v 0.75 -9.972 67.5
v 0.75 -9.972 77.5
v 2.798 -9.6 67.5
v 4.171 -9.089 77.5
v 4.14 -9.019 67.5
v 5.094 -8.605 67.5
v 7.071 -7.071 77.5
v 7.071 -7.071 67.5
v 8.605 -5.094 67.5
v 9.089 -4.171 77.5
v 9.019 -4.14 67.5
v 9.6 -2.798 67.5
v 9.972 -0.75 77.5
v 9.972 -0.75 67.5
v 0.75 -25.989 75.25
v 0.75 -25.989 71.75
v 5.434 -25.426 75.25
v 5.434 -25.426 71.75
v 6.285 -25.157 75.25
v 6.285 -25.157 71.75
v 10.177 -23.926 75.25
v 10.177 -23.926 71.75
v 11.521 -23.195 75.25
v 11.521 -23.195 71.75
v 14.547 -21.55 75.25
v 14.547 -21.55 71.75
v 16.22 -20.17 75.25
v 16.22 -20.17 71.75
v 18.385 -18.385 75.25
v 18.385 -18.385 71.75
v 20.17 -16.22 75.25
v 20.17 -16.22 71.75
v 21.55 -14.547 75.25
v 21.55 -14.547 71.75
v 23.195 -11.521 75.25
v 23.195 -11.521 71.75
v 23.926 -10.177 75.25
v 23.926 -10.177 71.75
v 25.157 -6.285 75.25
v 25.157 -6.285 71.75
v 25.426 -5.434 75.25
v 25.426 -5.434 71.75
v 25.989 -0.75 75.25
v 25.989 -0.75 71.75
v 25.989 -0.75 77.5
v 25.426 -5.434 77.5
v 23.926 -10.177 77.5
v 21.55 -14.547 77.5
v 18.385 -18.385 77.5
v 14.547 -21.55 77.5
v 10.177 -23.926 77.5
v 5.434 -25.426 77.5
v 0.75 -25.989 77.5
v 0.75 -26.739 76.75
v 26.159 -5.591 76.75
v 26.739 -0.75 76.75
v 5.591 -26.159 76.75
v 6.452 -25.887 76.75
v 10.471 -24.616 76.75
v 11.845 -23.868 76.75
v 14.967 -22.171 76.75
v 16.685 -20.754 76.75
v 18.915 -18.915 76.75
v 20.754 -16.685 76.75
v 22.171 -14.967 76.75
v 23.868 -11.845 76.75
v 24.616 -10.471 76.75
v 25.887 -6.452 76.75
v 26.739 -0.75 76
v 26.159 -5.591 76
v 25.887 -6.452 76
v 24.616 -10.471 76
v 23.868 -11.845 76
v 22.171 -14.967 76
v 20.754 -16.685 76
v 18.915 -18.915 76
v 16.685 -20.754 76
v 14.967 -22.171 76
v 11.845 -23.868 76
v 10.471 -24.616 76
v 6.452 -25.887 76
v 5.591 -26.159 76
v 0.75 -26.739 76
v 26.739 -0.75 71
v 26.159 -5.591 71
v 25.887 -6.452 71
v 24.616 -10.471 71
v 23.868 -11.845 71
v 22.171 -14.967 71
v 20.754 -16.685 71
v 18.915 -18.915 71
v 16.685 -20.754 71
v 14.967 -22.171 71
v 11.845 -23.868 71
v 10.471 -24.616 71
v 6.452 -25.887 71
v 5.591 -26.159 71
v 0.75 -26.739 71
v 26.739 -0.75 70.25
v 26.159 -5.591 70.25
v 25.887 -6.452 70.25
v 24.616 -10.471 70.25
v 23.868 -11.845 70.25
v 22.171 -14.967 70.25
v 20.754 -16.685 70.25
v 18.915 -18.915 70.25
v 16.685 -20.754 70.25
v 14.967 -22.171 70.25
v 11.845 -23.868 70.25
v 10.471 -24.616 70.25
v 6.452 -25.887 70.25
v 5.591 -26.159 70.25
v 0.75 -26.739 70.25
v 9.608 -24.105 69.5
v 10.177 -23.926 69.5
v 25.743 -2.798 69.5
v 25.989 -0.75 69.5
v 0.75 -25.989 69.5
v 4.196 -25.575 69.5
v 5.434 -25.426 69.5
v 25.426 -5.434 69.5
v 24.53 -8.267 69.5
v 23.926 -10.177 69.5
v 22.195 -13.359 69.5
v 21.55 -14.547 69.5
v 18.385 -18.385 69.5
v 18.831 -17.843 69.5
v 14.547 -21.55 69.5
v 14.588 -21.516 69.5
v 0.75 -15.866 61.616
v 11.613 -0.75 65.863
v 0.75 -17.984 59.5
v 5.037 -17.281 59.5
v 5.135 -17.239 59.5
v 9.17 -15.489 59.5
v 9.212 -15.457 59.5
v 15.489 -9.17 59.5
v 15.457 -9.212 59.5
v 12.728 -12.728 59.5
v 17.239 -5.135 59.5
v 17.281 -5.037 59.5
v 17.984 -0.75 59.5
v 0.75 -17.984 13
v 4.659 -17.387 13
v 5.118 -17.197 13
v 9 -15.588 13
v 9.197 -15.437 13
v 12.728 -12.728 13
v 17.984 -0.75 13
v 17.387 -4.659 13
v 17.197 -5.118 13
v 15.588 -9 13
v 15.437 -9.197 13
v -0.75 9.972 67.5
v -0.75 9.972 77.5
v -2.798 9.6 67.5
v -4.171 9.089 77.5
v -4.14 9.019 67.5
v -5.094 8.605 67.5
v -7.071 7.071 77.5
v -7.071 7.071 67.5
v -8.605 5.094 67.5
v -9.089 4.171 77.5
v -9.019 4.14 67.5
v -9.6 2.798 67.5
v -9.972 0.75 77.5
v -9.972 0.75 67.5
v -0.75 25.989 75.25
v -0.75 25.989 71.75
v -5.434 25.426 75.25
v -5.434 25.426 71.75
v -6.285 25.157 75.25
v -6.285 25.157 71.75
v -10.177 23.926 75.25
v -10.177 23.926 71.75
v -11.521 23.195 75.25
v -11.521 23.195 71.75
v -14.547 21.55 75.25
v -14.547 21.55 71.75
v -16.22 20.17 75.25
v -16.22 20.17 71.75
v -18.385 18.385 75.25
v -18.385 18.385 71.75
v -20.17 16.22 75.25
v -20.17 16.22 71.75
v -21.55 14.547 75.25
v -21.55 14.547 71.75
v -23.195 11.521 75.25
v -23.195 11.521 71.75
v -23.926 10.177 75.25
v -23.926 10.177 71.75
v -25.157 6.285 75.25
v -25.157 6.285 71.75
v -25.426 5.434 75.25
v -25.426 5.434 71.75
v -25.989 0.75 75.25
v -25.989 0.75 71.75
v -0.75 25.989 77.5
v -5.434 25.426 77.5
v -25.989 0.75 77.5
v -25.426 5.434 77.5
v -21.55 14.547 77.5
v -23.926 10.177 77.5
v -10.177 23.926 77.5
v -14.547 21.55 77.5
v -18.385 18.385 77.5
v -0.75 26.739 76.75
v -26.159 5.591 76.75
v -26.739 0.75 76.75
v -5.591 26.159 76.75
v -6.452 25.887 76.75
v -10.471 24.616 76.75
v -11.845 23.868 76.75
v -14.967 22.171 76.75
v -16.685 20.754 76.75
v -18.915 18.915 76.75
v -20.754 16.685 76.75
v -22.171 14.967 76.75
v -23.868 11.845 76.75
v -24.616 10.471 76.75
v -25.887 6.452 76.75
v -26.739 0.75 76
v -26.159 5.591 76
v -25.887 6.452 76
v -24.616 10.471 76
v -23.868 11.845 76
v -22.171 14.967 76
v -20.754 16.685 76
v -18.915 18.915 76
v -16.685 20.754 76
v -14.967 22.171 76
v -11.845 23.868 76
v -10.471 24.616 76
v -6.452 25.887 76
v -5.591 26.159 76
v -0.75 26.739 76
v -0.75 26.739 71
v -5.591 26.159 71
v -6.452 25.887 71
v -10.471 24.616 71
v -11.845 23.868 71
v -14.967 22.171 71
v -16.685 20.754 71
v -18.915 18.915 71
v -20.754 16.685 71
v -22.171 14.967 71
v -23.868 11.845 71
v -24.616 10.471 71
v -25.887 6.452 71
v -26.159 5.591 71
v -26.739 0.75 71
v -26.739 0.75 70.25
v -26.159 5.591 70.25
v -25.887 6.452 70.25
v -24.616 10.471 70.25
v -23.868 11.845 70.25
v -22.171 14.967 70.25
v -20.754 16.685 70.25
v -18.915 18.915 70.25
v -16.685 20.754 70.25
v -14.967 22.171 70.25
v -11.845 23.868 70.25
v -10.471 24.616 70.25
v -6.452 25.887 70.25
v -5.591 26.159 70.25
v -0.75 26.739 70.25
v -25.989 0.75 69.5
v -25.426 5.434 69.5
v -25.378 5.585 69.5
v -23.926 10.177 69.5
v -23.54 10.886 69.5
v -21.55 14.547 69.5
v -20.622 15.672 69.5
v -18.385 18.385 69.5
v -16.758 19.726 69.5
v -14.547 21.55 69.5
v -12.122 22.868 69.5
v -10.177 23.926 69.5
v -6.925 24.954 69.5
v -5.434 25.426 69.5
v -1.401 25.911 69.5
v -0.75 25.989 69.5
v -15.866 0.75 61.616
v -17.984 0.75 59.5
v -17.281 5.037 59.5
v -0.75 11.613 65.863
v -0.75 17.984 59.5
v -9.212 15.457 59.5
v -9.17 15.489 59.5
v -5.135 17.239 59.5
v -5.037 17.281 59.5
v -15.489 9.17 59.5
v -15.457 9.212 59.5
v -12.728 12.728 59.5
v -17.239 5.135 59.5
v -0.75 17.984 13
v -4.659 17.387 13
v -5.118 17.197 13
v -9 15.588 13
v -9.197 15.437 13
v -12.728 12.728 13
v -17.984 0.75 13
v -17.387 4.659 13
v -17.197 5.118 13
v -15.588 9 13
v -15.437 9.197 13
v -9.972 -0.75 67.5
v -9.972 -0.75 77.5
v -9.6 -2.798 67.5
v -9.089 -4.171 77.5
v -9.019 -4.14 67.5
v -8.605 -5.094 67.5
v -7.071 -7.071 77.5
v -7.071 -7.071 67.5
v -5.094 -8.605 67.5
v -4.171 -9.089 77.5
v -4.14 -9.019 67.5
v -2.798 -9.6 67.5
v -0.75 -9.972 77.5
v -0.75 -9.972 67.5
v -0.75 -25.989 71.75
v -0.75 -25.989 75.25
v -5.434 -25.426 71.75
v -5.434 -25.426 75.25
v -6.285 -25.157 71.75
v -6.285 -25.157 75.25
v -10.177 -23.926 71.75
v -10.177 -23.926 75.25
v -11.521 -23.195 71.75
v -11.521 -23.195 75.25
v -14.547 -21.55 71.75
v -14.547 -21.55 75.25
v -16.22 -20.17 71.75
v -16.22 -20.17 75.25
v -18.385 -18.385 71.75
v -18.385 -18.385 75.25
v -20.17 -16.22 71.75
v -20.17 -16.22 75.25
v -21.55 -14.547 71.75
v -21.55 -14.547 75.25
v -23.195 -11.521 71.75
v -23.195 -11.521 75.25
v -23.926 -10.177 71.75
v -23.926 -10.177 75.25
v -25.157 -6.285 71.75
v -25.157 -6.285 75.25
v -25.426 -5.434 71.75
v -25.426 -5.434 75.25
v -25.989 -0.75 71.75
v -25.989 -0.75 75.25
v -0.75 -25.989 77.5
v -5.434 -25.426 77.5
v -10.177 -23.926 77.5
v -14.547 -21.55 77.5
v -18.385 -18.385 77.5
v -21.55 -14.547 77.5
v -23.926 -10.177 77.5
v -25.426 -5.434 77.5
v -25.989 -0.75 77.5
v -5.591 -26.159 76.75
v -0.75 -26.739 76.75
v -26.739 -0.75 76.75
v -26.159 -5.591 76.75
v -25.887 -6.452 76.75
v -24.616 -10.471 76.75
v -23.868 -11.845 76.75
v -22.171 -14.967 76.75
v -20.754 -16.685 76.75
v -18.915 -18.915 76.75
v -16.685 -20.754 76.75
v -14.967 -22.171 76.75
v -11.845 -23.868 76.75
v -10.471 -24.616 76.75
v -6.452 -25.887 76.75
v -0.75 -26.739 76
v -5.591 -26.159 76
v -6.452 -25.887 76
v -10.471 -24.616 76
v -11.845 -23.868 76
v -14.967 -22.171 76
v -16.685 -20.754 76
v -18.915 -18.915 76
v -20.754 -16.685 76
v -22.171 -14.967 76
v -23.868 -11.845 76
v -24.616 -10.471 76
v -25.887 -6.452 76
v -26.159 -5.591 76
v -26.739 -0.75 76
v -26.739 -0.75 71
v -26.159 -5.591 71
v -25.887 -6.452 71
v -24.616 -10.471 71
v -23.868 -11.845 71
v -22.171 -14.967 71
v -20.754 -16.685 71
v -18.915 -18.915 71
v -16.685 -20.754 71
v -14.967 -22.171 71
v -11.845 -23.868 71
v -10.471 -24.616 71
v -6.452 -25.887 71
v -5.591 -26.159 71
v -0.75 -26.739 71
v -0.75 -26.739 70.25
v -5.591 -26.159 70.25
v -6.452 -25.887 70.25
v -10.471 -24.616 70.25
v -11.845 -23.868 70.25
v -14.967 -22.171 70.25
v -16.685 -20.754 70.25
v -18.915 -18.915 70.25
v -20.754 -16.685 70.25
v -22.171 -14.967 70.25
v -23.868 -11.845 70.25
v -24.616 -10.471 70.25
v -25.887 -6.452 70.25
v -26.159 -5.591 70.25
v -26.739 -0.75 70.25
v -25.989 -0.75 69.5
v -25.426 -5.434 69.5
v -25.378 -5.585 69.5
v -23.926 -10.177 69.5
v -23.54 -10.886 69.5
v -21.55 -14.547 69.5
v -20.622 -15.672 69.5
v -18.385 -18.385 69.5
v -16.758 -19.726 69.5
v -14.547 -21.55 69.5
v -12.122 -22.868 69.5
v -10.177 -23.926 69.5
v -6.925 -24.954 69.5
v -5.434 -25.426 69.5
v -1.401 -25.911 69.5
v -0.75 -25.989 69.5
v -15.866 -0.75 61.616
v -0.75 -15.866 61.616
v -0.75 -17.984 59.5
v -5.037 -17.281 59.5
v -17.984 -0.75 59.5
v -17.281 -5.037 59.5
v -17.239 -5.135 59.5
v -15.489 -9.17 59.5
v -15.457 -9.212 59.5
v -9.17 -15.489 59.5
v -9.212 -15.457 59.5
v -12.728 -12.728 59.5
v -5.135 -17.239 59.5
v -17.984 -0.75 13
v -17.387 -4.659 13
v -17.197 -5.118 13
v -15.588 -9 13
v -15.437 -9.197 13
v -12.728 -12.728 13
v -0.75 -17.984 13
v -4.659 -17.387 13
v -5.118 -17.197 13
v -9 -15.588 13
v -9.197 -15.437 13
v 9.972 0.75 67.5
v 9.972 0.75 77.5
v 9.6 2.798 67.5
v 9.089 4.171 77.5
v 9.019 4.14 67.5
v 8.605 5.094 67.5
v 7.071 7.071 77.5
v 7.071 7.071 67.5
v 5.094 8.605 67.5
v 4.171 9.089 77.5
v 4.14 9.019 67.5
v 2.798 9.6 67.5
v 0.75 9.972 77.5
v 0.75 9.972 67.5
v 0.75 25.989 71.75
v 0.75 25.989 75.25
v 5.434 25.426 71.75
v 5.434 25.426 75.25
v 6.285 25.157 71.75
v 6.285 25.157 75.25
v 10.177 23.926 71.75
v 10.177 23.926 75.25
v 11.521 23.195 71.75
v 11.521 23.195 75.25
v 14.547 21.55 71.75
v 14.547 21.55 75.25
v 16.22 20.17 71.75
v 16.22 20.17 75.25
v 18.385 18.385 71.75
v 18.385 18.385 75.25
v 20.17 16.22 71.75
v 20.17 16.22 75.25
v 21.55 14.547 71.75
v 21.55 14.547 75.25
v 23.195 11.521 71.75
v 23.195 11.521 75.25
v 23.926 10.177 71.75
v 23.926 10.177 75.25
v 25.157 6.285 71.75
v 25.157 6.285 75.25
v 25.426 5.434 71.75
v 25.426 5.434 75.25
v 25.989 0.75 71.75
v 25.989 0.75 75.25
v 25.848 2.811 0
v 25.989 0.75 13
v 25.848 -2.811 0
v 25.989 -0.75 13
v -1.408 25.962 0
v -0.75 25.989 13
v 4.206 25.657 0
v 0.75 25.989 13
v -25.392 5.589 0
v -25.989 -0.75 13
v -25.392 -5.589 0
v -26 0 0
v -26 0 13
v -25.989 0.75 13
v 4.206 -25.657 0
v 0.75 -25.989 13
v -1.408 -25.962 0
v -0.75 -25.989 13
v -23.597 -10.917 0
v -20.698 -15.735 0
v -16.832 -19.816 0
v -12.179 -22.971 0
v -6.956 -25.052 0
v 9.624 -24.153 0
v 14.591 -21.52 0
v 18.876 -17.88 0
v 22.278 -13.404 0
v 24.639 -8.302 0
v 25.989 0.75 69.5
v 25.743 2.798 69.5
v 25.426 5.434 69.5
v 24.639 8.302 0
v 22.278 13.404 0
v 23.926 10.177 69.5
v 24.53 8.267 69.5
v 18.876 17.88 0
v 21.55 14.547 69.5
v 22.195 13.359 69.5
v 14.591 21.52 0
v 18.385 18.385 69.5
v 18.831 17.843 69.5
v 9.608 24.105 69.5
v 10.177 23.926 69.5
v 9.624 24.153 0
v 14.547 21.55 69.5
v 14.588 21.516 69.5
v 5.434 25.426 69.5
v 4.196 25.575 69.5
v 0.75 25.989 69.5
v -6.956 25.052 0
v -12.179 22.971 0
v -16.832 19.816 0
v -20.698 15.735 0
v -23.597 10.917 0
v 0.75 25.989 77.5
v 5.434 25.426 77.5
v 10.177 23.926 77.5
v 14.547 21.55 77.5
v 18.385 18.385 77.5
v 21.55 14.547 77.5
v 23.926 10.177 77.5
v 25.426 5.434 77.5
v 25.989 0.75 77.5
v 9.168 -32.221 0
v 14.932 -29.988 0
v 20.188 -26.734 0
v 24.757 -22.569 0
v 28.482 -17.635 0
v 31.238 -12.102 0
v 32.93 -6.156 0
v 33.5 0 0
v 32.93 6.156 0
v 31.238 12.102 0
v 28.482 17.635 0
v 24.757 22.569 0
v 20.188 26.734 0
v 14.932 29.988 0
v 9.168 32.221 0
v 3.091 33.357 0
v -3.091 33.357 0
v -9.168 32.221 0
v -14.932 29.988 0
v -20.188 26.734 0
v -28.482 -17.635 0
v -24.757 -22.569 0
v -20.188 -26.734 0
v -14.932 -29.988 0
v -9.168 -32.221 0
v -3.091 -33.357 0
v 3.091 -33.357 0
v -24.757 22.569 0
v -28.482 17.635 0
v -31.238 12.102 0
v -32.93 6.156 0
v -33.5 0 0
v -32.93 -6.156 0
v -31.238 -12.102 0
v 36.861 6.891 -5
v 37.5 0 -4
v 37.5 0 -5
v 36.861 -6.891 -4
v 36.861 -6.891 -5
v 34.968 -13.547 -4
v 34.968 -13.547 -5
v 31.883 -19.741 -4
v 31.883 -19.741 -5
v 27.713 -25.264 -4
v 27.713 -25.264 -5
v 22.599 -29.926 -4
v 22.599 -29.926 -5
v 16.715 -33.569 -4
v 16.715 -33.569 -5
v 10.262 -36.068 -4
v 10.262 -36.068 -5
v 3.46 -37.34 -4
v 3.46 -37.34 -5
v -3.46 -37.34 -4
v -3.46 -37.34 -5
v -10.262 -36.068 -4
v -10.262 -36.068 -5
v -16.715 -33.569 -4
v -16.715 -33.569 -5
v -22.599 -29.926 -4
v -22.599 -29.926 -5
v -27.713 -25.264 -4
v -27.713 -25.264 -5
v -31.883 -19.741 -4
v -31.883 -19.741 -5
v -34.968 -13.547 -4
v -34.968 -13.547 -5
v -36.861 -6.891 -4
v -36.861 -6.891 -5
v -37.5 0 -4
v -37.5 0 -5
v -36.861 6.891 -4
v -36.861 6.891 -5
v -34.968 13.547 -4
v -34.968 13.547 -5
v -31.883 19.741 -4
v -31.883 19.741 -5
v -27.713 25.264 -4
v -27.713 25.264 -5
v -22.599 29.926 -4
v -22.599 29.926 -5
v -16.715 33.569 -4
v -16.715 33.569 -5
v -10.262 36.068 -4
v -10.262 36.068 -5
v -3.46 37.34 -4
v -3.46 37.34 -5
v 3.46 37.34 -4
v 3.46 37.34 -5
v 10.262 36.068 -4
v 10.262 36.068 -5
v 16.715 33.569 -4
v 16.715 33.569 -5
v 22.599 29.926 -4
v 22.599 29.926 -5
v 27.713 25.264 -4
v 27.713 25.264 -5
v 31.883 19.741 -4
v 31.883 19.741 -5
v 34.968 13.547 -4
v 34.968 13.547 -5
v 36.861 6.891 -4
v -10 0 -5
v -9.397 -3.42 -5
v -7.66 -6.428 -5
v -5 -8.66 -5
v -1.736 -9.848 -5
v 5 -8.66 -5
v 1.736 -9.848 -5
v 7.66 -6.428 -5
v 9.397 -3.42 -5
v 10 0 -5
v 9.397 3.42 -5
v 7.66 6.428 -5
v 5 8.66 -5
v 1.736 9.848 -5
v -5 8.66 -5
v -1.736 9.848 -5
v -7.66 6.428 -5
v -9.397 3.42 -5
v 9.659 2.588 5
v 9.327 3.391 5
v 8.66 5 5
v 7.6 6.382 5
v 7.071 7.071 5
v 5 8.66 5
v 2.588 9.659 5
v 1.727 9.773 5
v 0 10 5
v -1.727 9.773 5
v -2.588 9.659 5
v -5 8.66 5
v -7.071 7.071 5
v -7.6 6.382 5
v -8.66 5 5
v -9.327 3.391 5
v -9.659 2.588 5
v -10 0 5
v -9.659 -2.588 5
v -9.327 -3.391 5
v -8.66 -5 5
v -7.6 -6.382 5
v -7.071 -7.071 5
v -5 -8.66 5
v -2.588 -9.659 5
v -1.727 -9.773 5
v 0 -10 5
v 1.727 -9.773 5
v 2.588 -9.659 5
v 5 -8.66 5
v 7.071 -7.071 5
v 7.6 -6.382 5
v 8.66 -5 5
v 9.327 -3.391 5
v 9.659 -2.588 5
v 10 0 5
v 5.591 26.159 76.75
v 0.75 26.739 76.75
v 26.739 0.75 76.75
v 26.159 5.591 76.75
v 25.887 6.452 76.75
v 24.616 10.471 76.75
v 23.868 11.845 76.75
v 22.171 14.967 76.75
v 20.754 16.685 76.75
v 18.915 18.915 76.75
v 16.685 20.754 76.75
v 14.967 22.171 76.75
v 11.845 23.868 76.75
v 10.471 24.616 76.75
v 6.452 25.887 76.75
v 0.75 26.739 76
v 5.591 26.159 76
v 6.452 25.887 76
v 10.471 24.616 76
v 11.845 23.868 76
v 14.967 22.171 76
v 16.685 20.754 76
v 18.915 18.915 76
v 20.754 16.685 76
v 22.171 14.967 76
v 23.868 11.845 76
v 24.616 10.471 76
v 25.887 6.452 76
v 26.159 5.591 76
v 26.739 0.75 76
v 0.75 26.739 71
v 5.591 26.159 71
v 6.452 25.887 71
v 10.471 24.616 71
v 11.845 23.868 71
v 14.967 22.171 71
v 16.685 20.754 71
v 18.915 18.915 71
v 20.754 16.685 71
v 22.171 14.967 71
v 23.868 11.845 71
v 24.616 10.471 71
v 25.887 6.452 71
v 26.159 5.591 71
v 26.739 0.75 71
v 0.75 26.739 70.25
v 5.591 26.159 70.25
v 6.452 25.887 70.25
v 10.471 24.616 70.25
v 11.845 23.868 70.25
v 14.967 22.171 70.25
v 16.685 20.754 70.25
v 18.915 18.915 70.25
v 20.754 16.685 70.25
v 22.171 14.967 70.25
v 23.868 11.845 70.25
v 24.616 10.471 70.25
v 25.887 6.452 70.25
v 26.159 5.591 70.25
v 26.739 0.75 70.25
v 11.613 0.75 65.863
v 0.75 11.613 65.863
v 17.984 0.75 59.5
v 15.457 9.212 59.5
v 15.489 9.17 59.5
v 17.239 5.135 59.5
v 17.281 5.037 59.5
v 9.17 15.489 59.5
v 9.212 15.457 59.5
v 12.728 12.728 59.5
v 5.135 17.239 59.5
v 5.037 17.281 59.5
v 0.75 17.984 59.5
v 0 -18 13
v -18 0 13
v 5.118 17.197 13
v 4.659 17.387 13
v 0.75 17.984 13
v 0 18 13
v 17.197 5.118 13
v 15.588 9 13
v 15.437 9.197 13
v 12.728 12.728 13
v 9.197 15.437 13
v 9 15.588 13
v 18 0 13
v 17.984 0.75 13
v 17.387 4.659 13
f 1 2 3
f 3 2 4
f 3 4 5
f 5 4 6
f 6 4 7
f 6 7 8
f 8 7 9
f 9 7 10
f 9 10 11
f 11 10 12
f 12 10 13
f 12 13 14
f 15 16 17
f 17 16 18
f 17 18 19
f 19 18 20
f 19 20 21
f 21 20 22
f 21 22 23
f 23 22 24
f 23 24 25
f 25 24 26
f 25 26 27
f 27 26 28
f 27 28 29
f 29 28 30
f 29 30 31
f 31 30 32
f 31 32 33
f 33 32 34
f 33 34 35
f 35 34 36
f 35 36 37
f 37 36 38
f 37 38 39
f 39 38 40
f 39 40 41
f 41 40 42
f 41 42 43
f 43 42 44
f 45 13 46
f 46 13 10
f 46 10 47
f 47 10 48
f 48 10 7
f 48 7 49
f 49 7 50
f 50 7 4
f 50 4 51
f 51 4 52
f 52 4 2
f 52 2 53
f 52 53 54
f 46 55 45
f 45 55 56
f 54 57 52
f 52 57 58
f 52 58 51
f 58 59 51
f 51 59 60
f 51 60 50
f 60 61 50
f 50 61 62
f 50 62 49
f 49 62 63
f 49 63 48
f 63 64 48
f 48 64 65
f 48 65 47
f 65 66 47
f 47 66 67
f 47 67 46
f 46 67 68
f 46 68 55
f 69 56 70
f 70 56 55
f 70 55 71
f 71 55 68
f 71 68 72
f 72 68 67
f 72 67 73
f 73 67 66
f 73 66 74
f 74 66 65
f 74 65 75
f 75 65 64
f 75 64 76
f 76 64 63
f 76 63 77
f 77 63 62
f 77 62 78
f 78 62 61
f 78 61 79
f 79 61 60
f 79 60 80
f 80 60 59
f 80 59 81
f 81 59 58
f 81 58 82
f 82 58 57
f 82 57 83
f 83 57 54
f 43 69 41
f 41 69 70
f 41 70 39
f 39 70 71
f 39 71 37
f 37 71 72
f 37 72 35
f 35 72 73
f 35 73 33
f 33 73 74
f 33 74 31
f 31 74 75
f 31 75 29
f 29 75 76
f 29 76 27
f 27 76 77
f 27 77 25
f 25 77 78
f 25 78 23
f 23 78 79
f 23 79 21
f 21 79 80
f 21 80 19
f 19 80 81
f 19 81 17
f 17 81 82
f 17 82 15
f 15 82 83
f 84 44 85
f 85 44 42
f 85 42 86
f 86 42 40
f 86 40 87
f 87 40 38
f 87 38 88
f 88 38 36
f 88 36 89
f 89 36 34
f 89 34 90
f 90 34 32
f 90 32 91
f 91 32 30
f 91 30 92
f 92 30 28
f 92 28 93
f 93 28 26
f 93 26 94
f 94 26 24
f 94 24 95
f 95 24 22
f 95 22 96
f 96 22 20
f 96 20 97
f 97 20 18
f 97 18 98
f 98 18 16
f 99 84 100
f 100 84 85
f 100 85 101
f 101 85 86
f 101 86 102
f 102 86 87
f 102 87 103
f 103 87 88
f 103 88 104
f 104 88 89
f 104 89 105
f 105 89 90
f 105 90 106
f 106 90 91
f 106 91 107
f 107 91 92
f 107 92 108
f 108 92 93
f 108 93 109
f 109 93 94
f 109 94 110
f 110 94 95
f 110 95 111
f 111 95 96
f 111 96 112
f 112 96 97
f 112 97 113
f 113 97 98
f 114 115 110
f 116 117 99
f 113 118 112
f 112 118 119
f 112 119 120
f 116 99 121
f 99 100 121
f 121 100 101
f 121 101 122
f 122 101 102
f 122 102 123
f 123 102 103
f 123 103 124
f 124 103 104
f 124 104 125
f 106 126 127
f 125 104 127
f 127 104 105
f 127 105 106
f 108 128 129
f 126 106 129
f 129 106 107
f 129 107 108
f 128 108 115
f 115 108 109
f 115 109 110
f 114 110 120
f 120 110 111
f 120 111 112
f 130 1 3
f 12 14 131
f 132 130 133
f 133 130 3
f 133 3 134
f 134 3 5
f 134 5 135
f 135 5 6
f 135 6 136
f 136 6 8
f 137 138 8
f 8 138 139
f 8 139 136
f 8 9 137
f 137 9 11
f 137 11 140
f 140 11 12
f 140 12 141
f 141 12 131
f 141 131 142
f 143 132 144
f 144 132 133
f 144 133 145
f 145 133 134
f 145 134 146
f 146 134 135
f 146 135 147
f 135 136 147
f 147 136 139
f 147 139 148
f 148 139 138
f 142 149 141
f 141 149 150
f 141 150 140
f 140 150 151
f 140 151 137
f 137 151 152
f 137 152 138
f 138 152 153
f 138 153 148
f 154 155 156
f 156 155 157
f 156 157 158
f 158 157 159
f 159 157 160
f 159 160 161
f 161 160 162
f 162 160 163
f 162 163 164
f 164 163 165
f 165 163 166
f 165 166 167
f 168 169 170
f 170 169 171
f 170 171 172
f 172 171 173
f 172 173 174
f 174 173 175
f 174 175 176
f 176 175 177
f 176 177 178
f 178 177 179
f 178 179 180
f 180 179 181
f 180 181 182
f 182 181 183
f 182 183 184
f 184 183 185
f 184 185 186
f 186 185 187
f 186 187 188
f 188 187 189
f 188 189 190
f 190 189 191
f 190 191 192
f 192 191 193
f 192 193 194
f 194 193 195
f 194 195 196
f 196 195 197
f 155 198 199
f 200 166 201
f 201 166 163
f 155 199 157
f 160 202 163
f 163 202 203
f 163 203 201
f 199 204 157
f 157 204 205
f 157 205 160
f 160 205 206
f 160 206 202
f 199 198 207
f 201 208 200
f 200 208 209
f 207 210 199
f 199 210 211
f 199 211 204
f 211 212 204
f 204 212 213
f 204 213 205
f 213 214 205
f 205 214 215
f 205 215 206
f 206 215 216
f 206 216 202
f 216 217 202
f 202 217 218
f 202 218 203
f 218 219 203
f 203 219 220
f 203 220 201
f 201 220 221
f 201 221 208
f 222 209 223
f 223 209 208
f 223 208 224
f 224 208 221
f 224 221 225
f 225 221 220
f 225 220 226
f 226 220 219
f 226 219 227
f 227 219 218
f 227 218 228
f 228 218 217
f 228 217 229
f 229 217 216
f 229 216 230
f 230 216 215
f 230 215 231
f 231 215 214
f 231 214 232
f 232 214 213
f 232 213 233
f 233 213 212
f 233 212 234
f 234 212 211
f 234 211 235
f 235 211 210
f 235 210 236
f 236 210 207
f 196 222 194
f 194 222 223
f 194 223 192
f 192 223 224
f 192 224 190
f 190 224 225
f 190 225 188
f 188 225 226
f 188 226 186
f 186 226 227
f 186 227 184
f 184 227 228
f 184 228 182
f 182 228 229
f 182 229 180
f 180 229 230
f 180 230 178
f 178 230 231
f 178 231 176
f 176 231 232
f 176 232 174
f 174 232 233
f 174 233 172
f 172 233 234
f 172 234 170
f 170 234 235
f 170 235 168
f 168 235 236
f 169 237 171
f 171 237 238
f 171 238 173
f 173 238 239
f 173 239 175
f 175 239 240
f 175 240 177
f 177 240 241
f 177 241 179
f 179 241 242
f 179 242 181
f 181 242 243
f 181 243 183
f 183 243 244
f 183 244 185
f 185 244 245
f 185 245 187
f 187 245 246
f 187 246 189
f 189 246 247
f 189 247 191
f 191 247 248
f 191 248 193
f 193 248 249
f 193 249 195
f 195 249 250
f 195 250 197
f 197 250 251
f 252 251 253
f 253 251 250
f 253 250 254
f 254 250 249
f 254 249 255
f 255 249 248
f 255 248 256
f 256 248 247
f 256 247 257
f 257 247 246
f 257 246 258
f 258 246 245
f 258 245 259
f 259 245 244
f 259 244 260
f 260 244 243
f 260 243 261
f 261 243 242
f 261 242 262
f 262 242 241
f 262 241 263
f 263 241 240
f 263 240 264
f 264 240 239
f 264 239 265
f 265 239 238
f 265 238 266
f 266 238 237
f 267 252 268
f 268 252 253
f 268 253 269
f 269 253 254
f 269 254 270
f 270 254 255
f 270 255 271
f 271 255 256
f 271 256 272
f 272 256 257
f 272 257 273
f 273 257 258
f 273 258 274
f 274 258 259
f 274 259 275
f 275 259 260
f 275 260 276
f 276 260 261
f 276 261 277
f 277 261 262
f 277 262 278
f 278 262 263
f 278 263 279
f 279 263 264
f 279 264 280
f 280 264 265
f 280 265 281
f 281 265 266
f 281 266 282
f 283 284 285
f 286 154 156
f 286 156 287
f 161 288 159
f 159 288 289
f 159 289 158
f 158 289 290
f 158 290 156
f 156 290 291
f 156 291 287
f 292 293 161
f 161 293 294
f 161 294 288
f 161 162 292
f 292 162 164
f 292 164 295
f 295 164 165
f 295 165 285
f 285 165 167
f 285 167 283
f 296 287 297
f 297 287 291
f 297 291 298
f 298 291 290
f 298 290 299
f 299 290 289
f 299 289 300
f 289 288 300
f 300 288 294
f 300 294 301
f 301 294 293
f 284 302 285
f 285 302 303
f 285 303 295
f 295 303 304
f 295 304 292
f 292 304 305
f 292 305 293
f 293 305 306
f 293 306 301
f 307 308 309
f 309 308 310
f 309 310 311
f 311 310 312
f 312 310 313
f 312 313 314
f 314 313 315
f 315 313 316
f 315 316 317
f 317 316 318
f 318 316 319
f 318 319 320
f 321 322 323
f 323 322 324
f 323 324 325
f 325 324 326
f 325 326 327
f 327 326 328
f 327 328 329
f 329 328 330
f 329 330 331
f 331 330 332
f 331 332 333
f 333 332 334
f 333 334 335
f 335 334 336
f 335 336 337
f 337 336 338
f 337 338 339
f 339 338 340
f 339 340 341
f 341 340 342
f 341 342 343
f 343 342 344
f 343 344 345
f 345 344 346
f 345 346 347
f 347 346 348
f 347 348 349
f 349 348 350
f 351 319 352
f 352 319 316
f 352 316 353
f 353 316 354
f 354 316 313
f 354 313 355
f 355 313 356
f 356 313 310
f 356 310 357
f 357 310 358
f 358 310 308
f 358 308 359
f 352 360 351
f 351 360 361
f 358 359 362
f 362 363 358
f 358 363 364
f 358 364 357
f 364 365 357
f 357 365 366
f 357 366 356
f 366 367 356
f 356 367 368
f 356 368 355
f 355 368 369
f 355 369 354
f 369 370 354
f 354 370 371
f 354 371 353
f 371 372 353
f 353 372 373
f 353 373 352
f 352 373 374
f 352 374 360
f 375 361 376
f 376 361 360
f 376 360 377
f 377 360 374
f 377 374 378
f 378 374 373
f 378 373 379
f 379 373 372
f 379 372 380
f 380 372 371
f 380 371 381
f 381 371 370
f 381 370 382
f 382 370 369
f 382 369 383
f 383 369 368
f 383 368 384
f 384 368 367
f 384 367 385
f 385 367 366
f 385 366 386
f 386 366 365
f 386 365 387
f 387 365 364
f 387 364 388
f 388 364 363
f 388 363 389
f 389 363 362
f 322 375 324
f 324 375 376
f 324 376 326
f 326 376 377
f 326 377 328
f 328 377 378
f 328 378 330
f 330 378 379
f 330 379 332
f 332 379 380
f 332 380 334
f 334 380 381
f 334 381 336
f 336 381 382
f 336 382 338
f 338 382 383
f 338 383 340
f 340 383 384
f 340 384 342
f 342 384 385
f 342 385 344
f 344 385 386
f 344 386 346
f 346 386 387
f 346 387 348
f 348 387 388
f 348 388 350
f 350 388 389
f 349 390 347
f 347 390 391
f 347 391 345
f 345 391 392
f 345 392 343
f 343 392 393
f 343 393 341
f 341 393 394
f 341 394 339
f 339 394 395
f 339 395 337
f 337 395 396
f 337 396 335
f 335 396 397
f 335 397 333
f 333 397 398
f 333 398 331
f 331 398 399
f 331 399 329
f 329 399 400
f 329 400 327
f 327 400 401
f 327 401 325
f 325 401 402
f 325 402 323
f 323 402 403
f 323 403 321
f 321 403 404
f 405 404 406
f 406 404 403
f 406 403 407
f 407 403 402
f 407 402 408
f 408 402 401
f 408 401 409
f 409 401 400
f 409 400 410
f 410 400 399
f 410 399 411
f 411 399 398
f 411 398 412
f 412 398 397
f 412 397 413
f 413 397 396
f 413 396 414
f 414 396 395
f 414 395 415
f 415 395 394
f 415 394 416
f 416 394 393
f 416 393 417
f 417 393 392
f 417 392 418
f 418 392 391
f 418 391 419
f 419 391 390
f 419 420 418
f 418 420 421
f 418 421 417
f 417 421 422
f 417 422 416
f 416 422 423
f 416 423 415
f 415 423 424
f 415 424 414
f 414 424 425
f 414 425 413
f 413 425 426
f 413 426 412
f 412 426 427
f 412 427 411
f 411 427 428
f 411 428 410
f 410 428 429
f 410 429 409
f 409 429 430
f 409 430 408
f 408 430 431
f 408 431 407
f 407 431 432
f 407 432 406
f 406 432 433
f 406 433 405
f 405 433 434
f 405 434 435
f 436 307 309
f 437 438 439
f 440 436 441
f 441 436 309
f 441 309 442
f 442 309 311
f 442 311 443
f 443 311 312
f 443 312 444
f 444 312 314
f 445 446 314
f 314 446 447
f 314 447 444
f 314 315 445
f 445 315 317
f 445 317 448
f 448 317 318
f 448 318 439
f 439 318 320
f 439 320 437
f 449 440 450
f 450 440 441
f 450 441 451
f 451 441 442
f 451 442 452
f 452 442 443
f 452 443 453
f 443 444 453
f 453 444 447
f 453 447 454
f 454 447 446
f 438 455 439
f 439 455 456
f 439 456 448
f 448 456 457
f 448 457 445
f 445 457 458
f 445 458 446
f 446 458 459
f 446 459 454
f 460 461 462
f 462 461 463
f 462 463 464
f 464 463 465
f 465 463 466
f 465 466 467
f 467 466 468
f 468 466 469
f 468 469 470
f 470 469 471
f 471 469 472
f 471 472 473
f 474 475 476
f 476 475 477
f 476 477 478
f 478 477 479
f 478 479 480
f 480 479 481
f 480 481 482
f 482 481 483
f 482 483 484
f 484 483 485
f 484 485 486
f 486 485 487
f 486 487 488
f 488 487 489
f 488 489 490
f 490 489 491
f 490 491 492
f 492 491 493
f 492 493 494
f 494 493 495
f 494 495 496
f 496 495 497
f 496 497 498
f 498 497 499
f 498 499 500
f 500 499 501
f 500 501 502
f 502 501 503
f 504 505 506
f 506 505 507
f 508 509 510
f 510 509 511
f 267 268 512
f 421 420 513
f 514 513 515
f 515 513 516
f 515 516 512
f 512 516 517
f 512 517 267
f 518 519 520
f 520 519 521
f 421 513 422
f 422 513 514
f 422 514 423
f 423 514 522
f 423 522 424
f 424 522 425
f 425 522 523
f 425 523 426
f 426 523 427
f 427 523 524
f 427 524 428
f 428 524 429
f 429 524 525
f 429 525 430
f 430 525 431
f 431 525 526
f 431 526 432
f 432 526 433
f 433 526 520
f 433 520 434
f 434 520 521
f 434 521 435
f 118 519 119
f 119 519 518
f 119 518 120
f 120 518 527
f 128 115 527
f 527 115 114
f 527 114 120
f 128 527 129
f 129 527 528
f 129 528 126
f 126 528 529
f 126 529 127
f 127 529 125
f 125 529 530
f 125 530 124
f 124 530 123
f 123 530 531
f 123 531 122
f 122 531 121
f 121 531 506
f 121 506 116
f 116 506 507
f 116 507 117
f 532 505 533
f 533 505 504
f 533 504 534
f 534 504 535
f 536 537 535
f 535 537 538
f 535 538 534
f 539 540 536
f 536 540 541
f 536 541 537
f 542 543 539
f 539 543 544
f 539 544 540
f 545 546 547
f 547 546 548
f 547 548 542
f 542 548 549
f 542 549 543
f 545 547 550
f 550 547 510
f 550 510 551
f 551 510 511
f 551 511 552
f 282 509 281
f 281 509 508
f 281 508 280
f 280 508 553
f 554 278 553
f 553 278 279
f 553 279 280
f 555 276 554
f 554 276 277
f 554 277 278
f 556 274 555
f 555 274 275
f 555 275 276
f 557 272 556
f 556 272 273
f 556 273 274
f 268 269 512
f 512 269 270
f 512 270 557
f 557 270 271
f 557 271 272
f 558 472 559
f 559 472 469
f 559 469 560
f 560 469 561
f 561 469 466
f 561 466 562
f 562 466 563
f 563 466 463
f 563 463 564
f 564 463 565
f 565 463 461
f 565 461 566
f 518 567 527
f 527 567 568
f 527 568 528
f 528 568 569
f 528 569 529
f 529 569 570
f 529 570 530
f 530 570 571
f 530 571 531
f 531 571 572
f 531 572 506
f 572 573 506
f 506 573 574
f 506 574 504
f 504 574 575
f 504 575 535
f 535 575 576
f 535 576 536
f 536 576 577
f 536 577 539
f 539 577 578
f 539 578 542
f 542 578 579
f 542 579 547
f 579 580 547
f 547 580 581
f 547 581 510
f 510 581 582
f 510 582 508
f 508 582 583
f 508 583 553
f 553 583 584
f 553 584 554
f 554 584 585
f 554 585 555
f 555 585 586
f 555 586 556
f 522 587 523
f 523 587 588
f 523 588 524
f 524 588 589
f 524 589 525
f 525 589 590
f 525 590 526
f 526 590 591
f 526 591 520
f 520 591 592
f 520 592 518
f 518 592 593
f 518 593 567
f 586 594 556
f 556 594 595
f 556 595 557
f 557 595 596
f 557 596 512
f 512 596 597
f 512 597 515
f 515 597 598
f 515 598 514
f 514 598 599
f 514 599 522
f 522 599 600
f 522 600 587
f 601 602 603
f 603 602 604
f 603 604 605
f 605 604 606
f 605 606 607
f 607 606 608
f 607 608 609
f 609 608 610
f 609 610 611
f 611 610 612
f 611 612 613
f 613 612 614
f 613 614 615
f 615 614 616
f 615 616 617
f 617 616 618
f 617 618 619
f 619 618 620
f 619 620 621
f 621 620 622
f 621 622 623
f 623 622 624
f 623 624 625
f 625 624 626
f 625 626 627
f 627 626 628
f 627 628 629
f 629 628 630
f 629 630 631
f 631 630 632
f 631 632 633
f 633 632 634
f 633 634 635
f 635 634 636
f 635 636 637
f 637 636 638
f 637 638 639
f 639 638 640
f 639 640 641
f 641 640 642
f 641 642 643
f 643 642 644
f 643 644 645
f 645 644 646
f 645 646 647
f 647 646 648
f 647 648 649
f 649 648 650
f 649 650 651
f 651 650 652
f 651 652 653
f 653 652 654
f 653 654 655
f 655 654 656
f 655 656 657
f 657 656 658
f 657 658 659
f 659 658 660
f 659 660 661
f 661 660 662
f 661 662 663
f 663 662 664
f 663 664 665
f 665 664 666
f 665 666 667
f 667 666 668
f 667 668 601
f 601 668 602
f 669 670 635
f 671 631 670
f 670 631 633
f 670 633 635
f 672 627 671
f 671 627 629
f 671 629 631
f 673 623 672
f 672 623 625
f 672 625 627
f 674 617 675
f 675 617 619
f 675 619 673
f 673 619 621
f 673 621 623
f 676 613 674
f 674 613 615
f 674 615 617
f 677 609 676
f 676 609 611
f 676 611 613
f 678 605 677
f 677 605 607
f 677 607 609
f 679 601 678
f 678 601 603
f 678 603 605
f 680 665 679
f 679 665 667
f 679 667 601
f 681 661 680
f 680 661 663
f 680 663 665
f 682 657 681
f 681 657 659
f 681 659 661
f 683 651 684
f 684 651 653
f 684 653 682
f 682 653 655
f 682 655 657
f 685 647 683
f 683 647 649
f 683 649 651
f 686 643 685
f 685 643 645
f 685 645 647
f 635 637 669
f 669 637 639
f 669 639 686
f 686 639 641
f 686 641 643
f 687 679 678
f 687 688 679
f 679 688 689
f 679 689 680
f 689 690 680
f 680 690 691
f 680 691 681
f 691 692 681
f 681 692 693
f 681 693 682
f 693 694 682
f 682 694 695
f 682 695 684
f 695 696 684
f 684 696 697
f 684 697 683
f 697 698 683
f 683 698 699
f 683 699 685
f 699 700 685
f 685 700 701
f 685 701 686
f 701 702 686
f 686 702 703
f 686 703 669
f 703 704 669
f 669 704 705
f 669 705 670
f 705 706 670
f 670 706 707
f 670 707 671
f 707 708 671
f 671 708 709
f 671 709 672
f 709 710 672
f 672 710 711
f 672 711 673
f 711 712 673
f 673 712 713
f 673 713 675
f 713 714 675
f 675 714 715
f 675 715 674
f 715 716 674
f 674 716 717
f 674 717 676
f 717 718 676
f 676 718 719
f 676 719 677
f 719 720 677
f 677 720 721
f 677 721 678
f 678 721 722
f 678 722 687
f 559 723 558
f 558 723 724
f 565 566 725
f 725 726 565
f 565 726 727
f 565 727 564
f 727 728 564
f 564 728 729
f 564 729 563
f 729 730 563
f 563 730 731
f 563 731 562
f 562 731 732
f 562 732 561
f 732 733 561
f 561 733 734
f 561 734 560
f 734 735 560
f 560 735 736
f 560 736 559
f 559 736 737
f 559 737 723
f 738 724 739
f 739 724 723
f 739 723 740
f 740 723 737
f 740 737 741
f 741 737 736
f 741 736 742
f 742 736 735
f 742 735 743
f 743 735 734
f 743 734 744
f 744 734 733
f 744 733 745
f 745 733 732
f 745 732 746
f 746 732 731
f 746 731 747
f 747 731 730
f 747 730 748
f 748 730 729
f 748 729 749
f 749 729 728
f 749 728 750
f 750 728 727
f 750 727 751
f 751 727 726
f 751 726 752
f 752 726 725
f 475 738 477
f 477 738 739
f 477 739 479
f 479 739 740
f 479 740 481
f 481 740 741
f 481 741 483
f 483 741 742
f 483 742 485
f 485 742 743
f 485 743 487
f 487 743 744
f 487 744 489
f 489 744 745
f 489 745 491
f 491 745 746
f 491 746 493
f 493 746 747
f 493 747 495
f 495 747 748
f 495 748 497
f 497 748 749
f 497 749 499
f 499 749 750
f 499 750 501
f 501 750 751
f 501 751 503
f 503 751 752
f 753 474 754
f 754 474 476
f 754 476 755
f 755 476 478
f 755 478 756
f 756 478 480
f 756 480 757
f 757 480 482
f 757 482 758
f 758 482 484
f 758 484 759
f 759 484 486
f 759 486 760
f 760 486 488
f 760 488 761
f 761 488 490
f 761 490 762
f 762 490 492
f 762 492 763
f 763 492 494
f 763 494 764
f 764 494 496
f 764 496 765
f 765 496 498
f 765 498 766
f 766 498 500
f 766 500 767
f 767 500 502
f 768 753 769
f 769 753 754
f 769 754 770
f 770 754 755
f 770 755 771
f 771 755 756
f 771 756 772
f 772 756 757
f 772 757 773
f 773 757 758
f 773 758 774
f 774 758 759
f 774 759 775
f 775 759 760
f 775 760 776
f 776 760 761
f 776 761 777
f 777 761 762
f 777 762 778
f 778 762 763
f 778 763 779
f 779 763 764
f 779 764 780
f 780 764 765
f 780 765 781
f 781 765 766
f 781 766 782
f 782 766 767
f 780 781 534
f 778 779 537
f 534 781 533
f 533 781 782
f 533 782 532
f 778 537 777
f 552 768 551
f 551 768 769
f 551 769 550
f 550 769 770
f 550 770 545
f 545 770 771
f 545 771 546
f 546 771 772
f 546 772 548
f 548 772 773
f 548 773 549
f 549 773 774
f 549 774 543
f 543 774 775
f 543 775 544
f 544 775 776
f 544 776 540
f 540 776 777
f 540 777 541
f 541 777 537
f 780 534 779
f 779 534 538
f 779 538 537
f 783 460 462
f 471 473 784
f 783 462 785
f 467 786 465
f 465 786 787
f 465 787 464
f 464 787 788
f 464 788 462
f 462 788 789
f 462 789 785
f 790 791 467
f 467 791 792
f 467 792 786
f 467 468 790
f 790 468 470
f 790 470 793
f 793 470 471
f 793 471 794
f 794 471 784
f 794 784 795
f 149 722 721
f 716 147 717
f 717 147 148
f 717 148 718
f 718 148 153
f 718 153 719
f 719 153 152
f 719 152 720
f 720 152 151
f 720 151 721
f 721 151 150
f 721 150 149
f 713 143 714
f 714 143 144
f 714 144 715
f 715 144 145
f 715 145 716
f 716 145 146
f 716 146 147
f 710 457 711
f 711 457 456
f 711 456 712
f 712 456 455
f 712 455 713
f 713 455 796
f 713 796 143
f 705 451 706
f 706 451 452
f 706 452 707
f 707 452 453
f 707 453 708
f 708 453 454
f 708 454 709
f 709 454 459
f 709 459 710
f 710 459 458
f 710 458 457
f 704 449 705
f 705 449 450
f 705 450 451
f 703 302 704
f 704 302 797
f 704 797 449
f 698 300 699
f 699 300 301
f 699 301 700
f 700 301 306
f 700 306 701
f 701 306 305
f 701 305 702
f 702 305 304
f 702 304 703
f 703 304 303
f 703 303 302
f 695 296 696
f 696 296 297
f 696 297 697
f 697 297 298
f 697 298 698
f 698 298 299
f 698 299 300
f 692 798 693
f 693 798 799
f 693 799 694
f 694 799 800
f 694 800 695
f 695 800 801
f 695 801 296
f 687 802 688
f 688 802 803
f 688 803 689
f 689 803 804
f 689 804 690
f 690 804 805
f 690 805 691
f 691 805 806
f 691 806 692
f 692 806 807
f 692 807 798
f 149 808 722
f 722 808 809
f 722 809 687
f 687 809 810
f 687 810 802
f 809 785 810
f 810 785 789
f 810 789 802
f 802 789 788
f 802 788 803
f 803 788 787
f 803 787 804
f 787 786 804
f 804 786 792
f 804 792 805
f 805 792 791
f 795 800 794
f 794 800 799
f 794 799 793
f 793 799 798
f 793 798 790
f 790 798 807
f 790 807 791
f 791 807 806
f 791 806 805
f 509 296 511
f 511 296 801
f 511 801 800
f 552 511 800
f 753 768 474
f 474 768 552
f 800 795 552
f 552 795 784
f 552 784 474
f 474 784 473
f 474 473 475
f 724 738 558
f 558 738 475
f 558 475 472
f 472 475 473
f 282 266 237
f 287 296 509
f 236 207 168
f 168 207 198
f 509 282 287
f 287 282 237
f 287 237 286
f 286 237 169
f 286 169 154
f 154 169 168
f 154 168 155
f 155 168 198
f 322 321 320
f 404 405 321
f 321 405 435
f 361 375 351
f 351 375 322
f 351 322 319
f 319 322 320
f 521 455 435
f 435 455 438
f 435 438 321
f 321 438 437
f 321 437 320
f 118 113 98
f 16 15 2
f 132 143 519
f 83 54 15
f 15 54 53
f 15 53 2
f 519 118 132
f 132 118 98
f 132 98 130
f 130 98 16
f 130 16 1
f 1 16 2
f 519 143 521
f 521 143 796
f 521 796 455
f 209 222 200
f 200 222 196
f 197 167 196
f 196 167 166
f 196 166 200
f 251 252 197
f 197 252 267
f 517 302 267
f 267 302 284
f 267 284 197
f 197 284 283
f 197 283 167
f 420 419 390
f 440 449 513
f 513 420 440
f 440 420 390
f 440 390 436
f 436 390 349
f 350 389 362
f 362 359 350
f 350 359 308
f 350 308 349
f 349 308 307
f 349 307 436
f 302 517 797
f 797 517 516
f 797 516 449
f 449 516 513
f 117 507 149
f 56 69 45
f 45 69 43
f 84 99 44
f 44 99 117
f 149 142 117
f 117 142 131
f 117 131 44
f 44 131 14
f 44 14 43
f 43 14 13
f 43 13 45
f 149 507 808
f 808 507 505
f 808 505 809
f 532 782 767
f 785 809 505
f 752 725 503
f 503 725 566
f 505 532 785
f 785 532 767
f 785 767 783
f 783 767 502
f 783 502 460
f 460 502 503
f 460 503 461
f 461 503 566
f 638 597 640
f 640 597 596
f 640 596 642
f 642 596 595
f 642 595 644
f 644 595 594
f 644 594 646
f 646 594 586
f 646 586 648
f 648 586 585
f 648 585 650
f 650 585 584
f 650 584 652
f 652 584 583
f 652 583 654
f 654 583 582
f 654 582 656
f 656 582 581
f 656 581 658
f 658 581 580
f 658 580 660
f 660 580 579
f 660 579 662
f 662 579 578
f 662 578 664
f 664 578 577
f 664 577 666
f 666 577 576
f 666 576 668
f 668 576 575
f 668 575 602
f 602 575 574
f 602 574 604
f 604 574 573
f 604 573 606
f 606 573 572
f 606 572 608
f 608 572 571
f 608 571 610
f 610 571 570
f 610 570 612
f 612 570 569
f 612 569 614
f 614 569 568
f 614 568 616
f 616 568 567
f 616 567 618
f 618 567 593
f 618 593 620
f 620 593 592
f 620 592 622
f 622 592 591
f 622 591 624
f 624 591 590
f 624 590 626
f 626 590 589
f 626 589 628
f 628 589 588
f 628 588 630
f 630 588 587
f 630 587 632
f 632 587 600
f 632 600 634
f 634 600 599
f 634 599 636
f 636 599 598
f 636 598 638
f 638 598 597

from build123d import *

# Parameters (mm, degrees)
AXLE_BASE_SKETCH_R        = 26
AXLE_DEPTH                = 77.5
GUARD_BASE_R              = 37.5
GUARD_DEPTH               = 5
INNER_AXLE_HOLE_BASE_R    = 10
INNER_AXLE_HOLE_DEPTH     = 83.5
BEND_START                = -64.5
BEND_ROOM_BASE_W          = 1.5
BEND_ROOM_BASE_H          = 75
BEND_ROOM_1_DEPTH         = 64.5
BEND_ROOM_2_COUNT         = 2
BEND_ROOM_2_ANGLE         = 90
EASY_REMOVAL_CHAMFER_SIZE = 4


with BuildPart() as part:
    # Axle base sketch → Axle (new body)
    with BuildSketch(Plane.XY):
        Circle(AXLE_BASE_SKETCH_R)
    extrude(amount=AXLE_DEPTH)

    # Guard base → Guard (add)
    with BuildSketch(Plane(origin=(0, 0, 0), x_dir=(-1, 0, 0), z_dir=(0, 0, -1))):
        Circle(GUARD_BASE_R)
    extrude(amount=GUARD_DEPTH)

    # Inner axle hole base → Inner axle hole (cut, through all)
    with BuildSketch(Plane.XY.offset(77.5)):
        Circle(INNER_AXLE_HOLE_BASE_R)
    extrude(amount=-INNER_AXLE_HOLE_DEPTH, mode=Mode.SUBTRACT)

    # Mate ring base → Mate rings (revolve)
    with BuildSketch(Plane(origin=(0, 0, 0), x_dir=(1, 0, 0), z_dir=(0, 1, 0))):
        Polygon((26, -77.5), (26.75, -76.75), (26.75, -76), (26, -75.25), align=None)
        Polygon((26, -71.75), (26.75, -71), (26.75, -70.25), (26, -69.5), align=None)
    revolve(axis=Axis((0, 0, 0), (0, 0, -1)))

    # Inner mass remove base → Inner mass remove (revolve, cut)
    with BuildSketch(Plane(origin=(0, 0, 0), x_dir=(0, 0, -1), z_dir=(1, 0, 0))):
        Polygon((-77.5, 0), (-59.5, -18), (-13, -18), (5, 0), align=None)
    revolve(axis=Axis((0, 0, 0), (0, 0, -1)), mode=Mode.SUBTRACT)

    # Bend room base → Bend room 1 (cut)
    with BuildSketch(Plane.XY.offset(77.5).offset(BEND_START)):
        Rectangle(BEND_ROOM_BASE_W, BEND_ROOM_BASE_H)
    bend_room_1 = extrude(amount=BEND_ROOM_1_DEPTH, mode=Mode.SUBTRACT)

    # Bend room 2: Bend room 1 ×2 about axis
    bend_room_2_axis = Axis((0, 0, 0), (0, 0, -1))
    for i in range(1, BEND_ROOM_2_COUNT):
        add(bend_room_1.rotate(bend_room_2_axis, i * BEND_ROOM_2_ANGLE / (BEND_ROOM_2_COUNT - 1)), mode=Mode.SUBTRACT)

    # Easy removal chamfer
    easy_removal_chamfer_edges = [part.edges().sort_by_distance(p)[0] for p in [
        (37.5, 0, 0),
    ]]
    chamfer(easy_removal_chamfer_edges, length=EASY_REMOVAL_CHAMFER_SIZE)


solid = part.part
